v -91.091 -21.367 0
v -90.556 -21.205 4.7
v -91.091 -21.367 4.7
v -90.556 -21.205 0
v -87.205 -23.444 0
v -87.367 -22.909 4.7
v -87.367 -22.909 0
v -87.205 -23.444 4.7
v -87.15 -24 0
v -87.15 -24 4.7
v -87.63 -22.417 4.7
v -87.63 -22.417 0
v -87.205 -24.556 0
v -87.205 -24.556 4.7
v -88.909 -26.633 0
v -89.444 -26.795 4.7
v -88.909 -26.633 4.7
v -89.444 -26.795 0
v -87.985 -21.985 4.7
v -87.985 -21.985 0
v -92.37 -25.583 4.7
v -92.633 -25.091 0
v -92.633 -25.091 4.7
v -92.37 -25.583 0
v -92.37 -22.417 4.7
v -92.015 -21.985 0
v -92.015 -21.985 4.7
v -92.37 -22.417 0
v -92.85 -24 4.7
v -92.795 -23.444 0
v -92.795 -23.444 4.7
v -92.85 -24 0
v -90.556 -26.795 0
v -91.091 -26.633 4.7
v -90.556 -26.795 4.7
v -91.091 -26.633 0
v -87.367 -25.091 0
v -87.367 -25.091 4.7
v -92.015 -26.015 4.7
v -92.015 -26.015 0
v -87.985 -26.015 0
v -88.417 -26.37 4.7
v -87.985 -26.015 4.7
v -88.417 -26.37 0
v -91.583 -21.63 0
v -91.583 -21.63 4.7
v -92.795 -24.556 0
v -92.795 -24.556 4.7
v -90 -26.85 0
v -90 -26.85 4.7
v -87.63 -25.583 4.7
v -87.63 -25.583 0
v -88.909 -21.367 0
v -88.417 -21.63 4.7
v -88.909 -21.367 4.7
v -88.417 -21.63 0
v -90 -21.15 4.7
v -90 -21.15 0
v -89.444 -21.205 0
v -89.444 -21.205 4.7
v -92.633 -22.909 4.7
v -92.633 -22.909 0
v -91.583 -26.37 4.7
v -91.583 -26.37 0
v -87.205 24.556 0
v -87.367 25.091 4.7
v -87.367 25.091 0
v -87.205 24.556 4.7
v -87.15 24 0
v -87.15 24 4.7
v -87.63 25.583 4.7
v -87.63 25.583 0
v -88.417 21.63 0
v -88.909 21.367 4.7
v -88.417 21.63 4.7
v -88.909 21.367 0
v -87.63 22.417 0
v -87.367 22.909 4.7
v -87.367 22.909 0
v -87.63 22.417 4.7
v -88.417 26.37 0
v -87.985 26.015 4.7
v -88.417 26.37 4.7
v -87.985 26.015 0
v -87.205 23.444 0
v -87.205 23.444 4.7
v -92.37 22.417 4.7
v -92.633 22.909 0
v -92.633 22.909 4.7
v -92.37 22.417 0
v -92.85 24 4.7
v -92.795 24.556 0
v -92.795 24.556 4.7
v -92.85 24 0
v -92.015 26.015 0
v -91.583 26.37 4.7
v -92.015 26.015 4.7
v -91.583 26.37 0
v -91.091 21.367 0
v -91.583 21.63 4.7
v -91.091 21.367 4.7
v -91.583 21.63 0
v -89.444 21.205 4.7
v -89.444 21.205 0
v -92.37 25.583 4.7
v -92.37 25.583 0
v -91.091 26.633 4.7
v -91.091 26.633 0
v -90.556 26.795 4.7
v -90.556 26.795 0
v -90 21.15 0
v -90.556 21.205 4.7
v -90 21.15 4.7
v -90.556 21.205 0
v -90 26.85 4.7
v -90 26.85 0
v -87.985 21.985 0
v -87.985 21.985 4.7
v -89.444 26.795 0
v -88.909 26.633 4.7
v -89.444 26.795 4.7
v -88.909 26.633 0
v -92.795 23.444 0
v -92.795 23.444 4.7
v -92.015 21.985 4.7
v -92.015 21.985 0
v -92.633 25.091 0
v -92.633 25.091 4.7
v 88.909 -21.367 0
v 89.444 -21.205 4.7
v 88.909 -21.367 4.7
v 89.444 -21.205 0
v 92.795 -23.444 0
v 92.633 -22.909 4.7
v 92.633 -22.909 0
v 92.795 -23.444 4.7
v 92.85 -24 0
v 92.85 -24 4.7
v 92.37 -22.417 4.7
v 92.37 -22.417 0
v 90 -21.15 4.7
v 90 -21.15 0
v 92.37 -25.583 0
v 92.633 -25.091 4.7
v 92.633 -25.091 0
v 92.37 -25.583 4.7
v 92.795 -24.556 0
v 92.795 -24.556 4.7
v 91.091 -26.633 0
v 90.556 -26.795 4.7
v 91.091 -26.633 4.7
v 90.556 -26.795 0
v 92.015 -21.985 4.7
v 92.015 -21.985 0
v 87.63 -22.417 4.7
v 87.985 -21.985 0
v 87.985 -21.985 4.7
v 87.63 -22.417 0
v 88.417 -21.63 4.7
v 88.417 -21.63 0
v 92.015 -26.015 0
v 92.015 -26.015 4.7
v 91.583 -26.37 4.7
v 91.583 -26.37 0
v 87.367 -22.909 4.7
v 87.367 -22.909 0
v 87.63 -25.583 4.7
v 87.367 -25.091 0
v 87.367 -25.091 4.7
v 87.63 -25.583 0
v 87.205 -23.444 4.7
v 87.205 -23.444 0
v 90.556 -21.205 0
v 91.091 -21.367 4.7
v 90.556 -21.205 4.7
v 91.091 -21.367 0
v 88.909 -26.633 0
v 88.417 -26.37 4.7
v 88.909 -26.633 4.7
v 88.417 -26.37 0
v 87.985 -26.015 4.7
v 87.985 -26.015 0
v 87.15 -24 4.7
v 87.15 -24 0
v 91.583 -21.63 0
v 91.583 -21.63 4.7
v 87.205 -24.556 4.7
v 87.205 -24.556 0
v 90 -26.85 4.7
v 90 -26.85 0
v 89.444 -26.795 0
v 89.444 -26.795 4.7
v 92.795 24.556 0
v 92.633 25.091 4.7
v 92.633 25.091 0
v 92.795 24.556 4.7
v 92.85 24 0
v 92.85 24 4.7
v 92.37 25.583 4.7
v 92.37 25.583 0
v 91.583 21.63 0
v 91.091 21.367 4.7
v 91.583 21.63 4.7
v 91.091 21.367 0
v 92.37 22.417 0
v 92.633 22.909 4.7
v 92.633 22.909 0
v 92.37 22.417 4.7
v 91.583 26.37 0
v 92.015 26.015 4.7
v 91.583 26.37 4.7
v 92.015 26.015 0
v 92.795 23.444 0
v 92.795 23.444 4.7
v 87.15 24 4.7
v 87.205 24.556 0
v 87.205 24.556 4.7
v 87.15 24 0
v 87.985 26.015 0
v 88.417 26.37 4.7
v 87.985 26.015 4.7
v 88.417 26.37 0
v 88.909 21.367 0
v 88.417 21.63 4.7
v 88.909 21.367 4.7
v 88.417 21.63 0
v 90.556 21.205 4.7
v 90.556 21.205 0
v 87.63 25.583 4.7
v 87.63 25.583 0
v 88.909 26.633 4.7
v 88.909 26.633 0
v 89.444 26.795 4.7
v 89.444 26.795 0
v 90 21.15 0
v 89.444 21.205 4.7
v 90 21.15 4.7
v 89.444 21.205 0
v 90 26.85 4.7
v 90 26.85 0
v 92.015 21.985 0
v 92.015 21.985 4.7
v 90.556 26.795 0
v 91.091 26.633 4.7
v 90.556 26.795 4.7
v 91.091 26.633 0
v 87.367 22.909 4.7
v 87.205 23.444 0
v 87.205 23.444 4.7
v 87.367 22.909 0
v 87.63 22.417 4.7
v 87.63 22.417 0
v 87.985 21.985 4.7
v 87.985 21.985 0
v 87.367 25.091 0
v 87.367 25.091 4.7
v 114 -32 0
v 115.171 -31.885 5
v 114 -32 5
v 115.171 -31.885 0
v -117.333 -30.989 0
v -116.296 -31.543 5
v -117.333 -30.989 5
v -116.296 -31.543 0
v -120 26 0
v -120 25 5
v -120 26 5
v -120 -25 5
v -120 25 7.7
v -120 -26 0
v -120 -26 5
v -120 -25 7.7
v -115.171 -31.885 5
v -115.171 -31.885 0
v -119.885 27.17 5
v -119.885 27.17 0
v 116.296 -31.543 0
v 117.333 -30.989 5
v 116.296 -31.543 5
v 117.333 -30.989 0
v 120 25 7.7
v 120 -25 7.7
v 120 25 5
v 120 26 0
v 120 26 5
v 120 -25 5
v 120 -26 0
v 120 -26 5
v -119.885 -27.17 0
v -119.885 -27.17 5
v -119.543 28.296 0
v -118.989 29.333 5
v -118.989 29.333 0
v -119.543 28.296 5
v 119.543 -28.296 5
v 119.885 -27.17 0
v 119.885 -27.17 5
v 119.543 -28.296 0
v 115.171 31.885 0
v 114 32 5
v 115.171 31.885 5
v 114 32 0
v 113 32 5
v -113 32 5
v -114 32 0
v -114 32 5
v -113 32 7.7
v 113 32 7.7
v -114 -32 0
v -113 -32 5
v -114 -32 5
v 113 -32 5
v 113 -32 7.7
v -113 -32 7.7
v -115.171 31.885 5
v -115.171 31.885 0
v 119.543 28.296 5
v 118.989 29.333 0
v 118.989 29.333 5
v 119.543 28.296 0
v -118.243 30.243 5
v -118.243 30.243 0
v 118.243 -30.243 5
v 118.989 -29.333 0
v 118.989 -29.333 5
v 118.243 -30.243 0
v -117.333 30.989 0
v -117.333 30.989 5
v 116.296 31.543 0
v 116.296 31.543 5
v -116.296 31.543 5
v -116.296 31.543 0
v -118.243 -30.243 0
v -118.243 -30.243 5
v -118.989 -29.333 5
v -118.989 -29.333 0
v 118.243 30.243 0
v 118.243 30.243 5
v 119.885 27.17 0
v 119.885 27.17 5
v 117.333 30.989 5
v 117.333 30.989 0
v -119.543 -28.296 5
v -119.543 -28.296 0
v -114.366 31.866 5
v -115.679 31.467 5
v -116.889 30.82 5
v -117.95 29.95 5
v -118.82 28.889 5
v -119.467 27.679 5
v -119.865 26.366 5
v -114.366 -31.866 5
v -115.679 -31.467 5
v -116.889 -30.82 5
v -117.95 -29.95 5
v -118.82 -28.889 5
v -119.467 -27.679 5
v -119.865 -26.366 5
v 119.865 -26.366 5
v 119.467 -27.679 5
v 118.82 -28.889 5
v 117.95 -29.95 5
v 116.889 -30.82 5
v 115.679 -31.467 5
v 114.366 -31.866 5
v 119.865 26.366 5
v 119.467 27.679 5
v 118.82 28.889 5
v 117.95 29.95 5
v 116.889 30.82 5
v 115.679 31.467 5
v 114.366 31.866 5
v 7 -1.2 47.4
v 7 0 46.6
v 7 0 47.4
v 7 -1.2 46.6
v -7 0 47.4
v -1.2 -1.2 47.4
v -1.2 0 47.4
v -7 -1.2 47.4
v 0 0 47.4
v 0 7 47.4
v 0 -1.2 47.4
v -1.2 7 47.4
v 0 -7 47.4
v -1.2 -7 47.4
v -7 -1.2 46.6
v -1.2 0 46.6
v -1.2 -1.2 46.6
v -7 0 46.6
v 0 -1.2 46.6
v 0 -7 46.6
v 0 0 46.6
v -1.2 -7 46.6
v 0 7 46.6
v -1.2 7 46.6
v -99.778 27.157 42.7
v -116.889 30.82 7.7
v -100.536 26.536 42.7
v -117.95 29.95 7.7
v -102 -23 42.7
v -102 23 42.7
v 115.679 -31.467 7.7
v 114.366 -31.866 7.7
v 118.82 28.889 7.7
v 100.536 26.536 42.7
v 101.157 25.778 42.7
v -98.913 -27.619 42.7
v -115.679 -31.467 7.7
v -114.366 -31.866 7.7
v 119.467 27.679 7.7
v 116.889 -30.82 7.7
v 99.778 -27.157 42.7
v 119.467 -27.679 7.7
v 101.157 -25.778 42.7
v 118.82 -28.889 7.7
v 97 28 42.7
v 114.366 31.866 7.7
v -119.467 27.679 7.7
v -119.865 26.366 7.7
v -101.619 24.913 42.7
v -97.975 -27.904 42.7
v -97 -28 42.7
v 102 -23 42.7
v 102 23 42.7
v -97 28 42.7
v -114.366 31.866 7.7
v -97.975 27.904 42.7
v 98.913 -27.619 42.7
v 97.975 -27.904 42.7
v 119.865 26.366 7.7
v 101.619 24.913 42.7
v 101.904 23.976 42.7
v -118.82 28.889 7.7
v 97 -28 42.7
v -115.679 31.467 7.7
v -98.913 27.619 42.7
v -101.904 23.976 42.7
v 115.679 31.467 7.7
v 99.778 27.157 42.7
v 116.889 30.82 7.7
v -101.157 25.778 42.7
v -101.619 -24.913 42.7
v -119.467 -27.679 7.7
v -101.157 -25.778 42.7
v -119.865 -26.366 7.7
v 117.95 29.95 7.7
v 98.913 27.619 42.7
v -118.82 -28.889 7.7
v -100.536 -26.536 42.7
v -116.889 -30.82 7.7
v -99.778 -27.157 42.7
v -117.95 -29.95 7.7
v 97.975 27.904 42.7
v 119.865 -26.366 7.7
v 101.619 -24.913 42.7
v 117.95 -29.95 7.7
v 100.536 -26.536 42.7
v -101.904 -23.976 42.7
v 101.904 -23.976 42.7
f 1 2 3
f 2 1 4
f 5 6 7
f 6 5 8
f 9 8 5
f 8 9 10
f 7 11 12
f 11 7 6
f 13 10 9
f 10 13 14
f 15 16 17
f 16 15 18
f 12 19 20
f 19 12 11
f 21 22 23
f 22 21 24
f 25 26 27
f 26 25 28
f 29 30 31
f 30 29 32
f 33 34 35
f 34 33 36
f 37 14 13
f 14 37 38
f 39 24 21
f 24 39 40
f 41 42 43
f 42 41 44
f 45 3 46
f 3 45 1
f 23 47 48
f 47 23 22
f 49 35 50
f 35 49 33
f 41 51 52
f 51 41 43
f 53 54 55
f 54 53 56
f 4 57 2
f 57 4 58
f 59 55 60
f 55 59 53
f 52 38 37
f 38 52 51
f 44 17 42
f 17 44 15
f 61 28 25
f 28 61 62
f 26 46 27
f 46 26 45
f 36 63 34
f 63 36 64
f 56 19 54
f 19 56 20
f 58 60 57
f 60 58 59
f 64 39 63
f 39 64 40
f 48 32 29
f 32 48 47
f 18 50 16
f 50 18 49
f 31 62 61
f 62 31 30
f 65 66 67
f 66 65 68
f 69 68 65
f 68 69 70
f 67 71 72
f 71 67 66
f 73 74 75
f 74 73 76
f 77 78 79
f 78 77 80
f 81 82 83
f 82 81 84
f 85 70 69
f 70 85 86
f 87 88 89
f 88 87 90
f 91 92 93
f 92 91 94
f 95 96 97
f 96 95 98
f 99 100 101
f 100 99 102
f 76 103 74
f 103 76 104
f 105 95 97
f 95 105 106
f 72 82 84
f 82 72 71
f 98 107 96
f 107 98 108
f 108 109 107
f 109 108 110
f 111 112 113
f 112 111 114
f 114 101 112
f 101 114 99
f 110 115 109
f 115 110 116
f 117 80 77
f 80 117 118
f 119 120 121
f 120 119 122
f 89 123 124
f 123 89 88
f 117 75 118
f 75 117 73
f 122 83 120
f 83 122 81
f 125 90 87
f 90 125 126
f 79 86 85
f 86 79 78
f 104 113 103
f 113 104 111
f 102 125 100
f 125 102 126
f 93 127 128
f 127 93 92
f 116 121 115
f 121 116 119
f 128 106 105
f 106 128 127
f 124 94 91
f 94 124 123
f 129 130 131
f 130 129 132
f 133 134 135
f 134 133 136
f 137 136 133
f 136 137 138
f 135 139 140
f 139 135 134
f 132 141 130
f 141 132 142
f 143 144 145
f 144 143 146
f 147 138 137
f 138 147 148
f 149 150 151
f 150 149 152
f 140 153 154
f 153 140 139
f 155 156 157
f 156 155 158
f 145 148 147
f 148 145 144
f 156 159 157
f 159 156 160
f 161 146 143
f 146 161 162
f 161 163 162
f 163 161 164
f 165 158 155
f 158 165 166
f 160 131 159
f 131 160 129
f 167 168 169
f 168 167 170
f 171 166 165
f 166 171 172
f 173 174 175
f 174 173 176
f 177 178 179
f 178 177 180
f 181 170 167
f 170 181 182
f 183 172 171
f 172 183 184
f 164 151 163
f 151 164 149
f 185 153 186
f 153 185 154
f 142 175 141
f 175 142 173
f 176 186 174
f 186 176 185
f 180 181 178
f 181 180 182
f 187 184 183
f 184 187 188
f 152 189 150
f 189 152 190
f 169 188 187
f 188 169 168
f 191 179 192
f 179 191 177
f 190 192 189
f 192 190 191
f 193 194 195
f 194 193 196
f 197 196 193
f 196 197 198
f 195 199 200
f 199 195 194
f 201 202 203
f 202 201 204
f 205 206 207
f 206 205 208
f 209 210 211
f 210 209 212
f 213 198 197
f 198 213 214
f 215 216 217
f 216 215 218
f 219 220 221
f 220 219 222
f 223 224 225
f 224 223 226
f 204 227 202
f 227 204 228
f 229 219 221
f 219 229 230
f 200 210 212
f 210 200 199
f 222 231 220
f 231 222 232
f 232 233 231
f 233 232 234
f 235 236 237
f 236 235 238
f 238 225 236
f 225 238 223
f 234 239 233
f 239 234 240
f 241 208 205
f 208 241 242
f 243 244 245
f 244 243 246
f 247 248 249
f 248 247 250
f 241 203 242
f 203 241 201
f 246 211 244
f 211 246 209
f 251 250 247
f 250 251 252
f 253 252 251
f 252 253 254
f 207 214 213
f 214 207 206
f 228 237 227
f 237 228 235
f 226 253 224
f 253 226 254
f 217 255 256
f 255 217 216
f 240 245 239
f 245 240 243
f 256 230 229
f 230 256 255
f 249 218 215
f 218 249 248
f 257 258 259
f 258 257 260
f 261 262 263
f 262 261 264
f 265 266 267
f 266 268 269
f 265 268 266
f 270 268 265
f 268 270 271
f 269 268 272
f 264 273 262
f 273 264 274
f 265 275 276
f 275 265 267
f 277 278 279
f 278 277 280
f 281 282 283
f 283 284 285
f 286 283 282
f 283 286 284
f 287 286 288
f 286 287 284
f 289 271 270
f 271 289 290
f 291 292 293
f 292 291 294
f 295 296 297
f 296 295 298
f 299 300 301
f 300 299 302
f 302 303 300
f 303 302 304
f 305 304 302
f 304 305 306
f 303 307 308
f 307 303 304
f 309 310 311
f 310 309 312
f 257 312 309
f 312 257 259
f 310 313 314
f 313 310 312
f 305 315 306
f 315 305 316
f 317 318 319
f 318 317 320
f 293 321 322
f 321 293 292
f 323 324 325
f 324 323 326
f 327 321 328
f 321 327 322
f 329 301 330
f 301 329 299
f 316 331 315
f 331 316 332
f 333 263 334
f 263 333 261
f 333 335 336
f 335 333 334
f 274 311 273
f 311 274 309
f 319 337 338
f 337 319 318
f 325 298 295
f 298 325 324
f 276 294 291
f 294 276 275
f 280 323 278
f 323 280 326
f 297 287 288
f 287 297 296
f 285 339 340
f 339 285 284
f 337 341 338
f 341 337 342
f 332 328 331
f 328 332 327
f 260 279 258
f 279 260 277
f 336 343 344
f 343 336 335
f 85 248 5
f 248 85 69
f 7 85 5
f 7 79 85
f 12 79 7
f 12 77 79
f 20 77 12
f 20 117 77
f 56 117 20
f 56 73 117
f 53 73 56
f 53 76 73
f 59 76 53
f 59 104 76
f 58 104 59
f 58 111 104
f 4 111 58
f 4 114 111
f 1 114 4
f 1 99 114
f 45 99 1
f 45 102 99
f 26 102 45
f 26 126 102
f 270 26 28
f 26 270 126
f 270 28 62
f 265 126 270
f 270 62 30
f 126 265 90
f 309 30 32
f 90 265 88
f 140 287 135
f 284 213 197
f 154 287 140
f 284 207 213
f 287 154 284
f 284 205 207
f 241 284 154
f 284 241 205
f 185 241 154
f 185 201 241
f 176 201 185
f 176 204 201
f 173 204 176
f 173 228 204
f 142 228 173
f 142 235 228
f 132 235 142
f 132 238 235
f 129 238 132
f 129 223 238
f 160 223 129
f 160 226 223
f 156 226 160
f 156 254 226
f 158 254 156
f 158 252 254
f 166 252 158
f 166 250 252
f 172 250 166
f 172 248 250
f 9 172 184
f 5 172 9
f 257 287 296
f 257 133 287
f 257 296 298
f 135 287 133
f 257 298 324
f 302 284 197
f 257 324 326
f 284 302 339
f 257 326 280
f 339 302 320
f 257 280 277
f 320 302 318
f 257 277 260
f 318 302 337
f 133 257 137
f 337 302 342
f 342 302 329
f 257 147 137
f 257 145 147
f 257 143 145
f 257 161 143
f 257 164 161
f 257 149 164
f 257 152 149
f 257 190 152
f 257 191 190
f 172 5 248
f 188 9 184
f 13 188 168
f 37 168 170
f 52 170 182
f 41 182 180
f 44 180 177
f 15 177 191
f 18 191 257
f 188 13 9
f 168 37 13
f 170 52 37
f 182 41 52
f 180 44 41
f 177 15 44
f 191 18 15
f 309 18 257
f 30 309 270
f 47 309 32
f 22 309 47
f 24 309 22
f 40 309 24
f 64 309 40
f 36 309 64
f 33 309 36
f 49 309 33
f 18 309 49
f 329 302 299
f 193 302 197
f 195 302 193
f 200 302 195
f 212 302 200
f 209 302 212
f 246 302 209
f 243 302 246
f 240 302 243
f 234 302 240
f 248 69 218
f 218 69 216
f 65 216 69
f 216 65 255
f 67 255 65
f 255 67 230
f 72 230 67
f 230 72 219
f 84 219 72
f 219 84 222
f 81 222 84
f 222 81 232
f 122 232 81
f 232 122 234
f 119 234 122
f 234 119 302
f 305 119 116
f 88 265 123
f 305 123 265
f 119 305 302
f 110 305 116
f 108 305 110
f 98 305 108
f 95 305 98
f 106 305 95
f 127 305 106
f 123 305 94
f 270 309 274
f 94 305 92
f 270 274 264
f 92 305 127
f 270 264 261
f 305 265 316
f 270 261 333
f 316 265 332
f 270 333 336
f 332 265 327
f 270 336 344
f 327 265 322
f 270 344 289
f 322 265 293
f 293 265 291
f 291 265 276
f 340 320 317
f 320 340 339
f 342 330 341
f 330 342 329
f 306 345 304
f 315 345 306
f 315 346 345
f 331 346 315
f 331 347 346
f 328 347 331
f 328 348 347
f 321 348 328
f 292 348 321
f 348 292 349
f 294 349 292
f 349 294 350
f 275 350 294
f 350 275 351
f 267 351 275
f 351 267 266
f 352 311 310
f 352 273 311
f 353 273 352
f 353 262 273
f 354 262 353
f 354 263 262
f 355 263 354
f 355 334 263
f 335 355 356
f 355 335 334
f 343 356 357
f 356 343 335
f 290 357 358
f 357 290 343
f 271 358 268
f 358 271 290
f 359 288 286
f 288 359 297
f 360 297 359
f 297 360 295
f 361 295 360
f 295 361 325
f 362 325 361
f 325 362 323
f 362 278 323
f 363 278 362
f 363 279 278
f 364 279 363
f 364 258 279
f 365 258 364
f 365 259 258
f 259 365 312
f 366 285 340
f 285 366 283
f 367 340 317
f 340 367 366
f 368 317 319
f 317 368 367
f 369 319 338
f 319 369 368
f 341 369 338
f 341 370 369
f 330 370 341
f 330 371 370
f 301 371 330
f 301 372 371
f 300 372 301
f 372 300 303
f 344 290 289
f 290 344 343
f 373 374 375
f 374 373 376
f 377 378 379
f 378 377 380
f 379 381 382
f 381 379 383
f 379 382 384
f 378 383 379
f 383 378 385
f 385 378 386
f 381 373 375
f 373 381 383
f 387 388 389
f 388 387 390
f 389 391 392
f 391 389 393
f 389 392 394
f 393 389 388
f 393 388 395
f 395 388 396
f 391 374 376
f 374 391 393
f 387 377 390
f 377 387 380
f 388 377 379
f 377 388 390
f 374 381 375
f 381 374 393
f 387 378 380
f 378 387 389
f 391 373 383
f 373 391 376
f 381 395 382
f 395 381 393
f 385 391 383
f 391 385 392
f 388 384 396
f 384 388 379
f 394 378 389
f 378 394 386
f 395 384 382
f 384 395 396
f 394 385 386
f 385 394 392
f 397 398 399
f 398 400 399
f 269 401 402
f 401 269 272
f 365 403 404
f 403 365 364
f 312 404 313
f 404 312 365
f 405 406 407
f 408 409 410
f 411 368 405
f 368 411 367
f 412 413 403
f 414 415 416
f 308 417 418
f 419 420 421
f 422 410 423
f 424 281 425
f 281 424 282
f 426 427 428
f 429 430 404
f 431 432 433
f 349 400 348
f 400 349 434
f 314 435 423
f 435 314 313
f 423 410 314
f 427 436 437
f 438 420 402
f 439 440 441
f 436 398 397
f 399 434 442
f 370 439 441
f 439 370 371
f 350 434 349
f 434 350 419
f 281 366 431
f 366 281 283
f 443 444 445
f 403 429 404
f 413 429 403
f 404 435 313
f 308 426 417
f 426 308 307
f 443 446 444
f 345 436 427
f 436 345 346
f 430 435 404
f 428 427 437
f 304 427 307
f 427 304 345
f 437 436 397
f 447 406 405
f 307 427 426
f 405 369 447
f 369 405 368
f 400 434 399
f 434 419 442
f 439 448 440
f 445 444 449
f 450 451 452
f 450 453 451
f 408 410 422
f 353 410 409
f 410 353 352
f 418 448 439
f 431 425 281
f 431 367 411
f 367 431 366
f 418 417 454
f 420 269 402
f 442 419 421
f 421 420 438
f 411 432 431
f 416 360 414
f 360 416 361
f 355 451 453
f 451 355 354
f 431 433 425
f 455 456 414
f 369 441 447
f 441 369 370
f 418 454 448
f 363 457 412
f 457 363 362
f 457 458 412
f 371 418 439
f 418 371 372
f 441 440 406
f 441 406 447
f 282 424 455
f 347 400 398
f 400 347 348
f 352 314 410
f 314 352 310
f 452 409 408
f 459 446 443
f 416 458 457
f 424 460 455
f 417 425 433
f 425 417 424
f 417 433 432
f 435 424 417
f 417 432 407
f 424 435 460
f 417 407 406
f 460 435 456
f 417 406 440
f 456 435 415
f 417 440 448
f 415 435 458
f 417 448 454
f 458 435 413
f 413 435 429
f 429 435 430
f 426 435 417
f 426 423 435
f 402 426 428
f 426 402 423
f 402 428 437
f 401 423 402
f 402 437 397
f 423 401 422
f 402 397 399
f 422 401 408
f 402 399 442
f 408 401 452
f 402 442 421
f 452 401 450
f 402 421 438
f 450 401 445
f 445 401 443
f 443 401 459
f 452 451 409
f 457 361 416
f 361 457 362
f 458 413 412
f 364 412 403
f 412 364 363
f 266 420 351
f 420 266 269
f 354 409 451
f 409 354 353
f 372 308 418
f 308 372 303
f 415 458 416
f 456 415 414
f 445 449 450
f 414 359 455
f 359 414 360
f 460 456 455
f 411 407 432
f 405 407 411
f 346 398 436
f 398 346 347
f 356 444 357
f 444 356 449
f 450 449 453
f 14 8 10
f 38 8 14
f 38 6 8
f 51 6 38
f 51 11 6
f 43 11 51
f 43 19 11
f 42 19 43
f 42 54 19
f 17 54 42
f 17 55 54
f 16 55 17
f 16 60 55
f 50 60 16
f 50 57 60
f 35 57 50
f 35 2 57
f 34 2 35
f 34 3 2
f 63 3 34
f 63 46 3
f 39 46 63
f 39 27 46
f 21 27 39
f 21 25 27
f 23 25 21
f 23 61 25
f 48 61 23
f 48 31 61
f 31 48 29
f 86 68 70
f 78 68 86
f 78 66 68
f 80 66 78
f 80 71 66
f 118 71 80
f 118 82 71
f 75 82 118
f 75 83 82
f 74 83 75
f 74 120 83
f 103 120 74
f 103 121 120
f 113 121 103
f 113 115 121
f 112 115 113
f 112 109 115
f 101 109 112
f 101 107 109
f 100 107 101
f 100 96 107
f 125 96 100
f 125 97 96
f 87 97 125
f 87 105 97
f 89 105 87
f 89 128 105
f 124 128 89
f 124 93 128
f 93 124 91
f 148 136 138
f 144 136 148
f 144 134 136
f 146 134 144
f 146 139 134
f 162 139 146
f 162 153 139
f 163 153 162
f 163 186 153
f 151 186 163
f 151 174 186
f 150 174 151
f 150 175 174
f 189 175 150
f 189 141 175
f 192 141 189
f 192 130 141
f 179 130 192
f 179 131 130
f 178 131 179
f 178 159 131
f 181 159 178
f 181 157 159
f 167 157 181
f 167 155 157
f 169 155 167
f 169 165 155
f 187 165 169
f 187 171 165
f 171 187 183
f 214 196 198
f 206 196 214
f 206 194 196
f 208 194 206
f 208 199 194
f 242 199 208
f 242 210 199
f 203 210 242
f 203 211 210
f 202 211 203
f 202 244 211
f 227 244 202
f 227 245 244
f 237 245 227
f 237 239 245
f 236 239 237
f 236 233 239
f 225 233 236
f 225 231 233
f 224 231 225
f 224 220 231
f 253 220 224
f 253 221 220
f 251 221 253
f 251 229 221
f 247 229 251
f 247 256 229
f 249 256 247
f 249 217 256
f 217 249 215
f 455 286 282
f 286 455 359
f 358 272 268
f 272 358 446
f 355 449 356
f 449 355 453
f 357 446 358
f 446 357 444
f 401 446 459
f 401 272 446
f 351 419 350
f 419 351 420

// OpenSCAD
// file: ../s1_parameters.scad
// Shared S1 prototype parameters.
// Units are millimeters. Values are provisional fit/geometry defaults.

$fn = 32;

s1_length_over_coupler_faces = 320;
s1_structural_deck_length = 280;
s1_sled_width = 72;
s1_sled_height = 14;
s1_deck_height_above_g0 = 30;
s1_wall_thickness = 2.4;
s1_corner_radius = 6;
s1_printer_tolerance = 0.35;
s1_min_feature = 1.2;

s1_module_length = 240;
s1_module_width = 64;
s1_module_interface_height = 5;
s1_module_corner_radius = 7;

s1_mount_x = 90;
s1_mount_y = 24;
s1_mount_pin_diameter = 5;
s1_mount_clearance = 0.35;
s1_latch_slot_length = 18;
s1_latch_slot_width = 6;

s1_coupler_pivot_spacing = 280;
s1_coupler_drawbar_length = 28;
s1_coupler_pivot_diameter = 8;
s1_coupler_yaw_normal_deg = 15;
s1_coupler_yaw_hard_stop_deg = 18;
s1_coupler_vertical_play = 1.5;

s1_ballast_pocket_length = 36;
s1_ballast_pocket_width = 18;
s1_ballast_pocket_depth = 6;
s1_ballast_channel_length = 108;
s1_ballast_channel_width = 14;
s1_ballast_channel_depth = 5;

s1_split_key_length = 14;
s1_split_key_width = 8;
s1_split_key_height = 5;
s1_split_plane_x = 0;

s1_support_node_x = 180;
s1_support_node_y = 50;

s1_bed_x = 220;
s1_bed_y = 220;

module rounded_box(size, radius = 3) {
  r = min(radius, min(size[0], size[1]) / 2 - 0.01);
  hull() {
    for (x = [-size[0] / 2 + r, size[0] / 2 - r])
      for (y = [-size[1] / 2 + r, size[1] / 2 - r])
        translate([x, y, 0])
          cylinder(h = size[2], r = r);
  }
}

module datum_cross(size = 18, height = 0.9, width = 1.4) {
  translate([0, -width / 2, 0]) cube([size, width, height], center = true);
  translate([-width / 2, 0, 0]) cube([width, size, height], center = true);
}

module centerline_marks(length, width, z, height = 0.8) {
  translate([0, -0.55, z]) cube([length, 1.1, height], center = true);
  translate([-0.55, 0, z]) cube([1.1, width, height], center = true);
}

module module_attachment_positions() {
  for (x = [-s1_mount_x, s1_mount_x])
    for (y = [-s1_mount_y, s1_mount_y])
      translate([x, y, 0]) children();
}

module support_node_positions() {
  for (x = [-s1_support_node_x / 2, s1_support_node_x / 2])
    for (y = [-s1_support_node_y / 2, s1_support_node_y / 2])
      translate([x, y, 0]) children();
}

module ballast_pocket_positions() {
  for (x = [-70, 70])
    for (y = [-20, 20])
      translate([x, y, 0]) children();
}

module mount_pin_holes(height = 30, clearance = s1_mount_clearance) {
  module_attachment_positions()
    cylinder(h = height, r = s1_mount_pin_diameter / 2 + clearance, center = true);
}

module latch_slots(height = 20, clearance = s1_mount_clearance) {
  module_attachment_positions()
    translate([0, 0, 0])
      rounded_box([s1_latch_slot_length + clearance, s1_latch_slot_width + clearance, height], 1.5);
}

module module_interface_underside(height = 4) {
  module_attachment_positions()
    cylinder(h = height, r = s1_mount_pin_diameter / 2, center = false);
}

module split_front_clip(length, width = 180, height = 180) {
  translate([length / 4 + 0.02, 0, height / 2 - 20])
    cube([length / 2 + 0.04, width, height], center = true);
}

module split_rear_clip(length, width = 180, height = 180) {
  translate([-length / 4 - 0.02, 0, height / 2 - 20])
    cube([length / 2 + 0.04, width, height], center = true);
}

module split_alignment_male(z = 2, clearance = 0) {
  for (y = [-18, 18])
    translate([
      -s1_split_key_length + clearance,
      y - s1_split_key_width / 2 + clearance,
      z
    ])
      cube([
        s1_split_key_length + 10,
        s1_split_key_width - 2 * clearance,
        s1_split_key_height - 2 * clearance
      ]);
}

module split_alignment_receiver(z = 2) {
  split_alignment_male(z = z - s1_printer_tolerance / 2, clearance = -s1_printer_tolerance);
}

module split_alignment_sockets(side = "front", z = 0.4) {
  // Split halves use flat, non-cosmetic joining faces for watertight STL output.
  // Loose alignment keys are printed separately and bonded across the underside seam.
}

module loose_alignment_keys() {
  for (y = [-8, 8])
    translate([0, y, 0])
      rounded_box([44, s1_split_key_width - 0.4, s1_split_key_height - 0.4], 1.2);
}

module module_split_keys_front(z = 2) {
  split_alignment_male(z = z);
}

module module_split_keys_rear(z = 2) {
  split_alignment_receiver(z = z);
}

module aerodynamic_pod_shell(length, width, height, nose = 24, roof_inset = 10, radius = 7) {
  hull() {
    rounded_box([length, width, 3], radius);
    translate([0, 0, height - 3])
      rounded_box([length - 2 * nose, width - roof_inset, 3], max(2, radius - 2));
  }
}

module side_panel_breaks(length, width, z, height = 1.0) {
  for (x = [-length / 4, 0, length / 4])
    translate([x, width / 2 - 8, z])
      cube([1.2, 1.4, height], center = true);
  for (x = [-length / 4, 0, length / 4])
    translate([x, -width / 2 + 8, z])
      cube([1.2, 1.4, height], center = true);
}

module cg_marker(z, size = 16) {
  translate([0, 0, z]) datum_cross(size = size, height = 0.8, width = 1.2);
}

module ballast_blocks(z = 5) {
  ballast_pocket_positions()
    translate([0, 0, z])
      rounded_box([s1_ballast_pocket_length - 5, s1_ballast_pocket_width - 4, 6], 2);
}

module module_half(part, length, width, height) {
  if (part == "front")
    split_front_clip(length, width, height) children();
  else if (part == "rear")
    split_rear_clip(length, width, height) children();
  else
    children();
}
// main file
include <../s1_parameters.scad>

build_part = "full";

module service_vents(y) {
  for (x = [-72, -48, -24, 24, 48, 72])
    translate([x, y, 28])
      rounded_box([12, 1.6, 9], 1.2);
}

module battery_pod_full() {
  union() {
    difference() {
      rounded_box([s1_module_length, s1_module_width, s1_module_interface_height], 6);
      mount_pin_holes(height = 14);
    }
    translate([0, 0, s1_module_interface_height - 0.3])
      aerodynamic_pod_shell(s1_module_length, s1_module_width, 38, nose = 18, roof_inset = 8, radius = 7);
    translate([0, 0, 14])
      rounded_box([150, s1_module_width - 12, 8], 4);
    service_vents(s1_module_width / 2 - 8);
    service_vents(-s1_module_width / 2 + 8);
    cg_marker(47, 14);
  }
}

module battery_pod_part() {
  if (build_part == "front")
    difference() {
      render(convexity = 10) intersection() { battery_pod_full(); split_front_clip(s1_module_length, 110, 120); }
      split_alignment_sockets("front", z = 0.5);
    }
  else if (build_part == "rear")
    difference() {
      render(convexity = 10) intersection() { battery_pod_full(); split_rear_clip(s1_module_length, 110, 120); }
      split_alignment_sockets("rear", z = 0.5);
    }
  else
    battery_pod_full();
}

battery_pod_part();
